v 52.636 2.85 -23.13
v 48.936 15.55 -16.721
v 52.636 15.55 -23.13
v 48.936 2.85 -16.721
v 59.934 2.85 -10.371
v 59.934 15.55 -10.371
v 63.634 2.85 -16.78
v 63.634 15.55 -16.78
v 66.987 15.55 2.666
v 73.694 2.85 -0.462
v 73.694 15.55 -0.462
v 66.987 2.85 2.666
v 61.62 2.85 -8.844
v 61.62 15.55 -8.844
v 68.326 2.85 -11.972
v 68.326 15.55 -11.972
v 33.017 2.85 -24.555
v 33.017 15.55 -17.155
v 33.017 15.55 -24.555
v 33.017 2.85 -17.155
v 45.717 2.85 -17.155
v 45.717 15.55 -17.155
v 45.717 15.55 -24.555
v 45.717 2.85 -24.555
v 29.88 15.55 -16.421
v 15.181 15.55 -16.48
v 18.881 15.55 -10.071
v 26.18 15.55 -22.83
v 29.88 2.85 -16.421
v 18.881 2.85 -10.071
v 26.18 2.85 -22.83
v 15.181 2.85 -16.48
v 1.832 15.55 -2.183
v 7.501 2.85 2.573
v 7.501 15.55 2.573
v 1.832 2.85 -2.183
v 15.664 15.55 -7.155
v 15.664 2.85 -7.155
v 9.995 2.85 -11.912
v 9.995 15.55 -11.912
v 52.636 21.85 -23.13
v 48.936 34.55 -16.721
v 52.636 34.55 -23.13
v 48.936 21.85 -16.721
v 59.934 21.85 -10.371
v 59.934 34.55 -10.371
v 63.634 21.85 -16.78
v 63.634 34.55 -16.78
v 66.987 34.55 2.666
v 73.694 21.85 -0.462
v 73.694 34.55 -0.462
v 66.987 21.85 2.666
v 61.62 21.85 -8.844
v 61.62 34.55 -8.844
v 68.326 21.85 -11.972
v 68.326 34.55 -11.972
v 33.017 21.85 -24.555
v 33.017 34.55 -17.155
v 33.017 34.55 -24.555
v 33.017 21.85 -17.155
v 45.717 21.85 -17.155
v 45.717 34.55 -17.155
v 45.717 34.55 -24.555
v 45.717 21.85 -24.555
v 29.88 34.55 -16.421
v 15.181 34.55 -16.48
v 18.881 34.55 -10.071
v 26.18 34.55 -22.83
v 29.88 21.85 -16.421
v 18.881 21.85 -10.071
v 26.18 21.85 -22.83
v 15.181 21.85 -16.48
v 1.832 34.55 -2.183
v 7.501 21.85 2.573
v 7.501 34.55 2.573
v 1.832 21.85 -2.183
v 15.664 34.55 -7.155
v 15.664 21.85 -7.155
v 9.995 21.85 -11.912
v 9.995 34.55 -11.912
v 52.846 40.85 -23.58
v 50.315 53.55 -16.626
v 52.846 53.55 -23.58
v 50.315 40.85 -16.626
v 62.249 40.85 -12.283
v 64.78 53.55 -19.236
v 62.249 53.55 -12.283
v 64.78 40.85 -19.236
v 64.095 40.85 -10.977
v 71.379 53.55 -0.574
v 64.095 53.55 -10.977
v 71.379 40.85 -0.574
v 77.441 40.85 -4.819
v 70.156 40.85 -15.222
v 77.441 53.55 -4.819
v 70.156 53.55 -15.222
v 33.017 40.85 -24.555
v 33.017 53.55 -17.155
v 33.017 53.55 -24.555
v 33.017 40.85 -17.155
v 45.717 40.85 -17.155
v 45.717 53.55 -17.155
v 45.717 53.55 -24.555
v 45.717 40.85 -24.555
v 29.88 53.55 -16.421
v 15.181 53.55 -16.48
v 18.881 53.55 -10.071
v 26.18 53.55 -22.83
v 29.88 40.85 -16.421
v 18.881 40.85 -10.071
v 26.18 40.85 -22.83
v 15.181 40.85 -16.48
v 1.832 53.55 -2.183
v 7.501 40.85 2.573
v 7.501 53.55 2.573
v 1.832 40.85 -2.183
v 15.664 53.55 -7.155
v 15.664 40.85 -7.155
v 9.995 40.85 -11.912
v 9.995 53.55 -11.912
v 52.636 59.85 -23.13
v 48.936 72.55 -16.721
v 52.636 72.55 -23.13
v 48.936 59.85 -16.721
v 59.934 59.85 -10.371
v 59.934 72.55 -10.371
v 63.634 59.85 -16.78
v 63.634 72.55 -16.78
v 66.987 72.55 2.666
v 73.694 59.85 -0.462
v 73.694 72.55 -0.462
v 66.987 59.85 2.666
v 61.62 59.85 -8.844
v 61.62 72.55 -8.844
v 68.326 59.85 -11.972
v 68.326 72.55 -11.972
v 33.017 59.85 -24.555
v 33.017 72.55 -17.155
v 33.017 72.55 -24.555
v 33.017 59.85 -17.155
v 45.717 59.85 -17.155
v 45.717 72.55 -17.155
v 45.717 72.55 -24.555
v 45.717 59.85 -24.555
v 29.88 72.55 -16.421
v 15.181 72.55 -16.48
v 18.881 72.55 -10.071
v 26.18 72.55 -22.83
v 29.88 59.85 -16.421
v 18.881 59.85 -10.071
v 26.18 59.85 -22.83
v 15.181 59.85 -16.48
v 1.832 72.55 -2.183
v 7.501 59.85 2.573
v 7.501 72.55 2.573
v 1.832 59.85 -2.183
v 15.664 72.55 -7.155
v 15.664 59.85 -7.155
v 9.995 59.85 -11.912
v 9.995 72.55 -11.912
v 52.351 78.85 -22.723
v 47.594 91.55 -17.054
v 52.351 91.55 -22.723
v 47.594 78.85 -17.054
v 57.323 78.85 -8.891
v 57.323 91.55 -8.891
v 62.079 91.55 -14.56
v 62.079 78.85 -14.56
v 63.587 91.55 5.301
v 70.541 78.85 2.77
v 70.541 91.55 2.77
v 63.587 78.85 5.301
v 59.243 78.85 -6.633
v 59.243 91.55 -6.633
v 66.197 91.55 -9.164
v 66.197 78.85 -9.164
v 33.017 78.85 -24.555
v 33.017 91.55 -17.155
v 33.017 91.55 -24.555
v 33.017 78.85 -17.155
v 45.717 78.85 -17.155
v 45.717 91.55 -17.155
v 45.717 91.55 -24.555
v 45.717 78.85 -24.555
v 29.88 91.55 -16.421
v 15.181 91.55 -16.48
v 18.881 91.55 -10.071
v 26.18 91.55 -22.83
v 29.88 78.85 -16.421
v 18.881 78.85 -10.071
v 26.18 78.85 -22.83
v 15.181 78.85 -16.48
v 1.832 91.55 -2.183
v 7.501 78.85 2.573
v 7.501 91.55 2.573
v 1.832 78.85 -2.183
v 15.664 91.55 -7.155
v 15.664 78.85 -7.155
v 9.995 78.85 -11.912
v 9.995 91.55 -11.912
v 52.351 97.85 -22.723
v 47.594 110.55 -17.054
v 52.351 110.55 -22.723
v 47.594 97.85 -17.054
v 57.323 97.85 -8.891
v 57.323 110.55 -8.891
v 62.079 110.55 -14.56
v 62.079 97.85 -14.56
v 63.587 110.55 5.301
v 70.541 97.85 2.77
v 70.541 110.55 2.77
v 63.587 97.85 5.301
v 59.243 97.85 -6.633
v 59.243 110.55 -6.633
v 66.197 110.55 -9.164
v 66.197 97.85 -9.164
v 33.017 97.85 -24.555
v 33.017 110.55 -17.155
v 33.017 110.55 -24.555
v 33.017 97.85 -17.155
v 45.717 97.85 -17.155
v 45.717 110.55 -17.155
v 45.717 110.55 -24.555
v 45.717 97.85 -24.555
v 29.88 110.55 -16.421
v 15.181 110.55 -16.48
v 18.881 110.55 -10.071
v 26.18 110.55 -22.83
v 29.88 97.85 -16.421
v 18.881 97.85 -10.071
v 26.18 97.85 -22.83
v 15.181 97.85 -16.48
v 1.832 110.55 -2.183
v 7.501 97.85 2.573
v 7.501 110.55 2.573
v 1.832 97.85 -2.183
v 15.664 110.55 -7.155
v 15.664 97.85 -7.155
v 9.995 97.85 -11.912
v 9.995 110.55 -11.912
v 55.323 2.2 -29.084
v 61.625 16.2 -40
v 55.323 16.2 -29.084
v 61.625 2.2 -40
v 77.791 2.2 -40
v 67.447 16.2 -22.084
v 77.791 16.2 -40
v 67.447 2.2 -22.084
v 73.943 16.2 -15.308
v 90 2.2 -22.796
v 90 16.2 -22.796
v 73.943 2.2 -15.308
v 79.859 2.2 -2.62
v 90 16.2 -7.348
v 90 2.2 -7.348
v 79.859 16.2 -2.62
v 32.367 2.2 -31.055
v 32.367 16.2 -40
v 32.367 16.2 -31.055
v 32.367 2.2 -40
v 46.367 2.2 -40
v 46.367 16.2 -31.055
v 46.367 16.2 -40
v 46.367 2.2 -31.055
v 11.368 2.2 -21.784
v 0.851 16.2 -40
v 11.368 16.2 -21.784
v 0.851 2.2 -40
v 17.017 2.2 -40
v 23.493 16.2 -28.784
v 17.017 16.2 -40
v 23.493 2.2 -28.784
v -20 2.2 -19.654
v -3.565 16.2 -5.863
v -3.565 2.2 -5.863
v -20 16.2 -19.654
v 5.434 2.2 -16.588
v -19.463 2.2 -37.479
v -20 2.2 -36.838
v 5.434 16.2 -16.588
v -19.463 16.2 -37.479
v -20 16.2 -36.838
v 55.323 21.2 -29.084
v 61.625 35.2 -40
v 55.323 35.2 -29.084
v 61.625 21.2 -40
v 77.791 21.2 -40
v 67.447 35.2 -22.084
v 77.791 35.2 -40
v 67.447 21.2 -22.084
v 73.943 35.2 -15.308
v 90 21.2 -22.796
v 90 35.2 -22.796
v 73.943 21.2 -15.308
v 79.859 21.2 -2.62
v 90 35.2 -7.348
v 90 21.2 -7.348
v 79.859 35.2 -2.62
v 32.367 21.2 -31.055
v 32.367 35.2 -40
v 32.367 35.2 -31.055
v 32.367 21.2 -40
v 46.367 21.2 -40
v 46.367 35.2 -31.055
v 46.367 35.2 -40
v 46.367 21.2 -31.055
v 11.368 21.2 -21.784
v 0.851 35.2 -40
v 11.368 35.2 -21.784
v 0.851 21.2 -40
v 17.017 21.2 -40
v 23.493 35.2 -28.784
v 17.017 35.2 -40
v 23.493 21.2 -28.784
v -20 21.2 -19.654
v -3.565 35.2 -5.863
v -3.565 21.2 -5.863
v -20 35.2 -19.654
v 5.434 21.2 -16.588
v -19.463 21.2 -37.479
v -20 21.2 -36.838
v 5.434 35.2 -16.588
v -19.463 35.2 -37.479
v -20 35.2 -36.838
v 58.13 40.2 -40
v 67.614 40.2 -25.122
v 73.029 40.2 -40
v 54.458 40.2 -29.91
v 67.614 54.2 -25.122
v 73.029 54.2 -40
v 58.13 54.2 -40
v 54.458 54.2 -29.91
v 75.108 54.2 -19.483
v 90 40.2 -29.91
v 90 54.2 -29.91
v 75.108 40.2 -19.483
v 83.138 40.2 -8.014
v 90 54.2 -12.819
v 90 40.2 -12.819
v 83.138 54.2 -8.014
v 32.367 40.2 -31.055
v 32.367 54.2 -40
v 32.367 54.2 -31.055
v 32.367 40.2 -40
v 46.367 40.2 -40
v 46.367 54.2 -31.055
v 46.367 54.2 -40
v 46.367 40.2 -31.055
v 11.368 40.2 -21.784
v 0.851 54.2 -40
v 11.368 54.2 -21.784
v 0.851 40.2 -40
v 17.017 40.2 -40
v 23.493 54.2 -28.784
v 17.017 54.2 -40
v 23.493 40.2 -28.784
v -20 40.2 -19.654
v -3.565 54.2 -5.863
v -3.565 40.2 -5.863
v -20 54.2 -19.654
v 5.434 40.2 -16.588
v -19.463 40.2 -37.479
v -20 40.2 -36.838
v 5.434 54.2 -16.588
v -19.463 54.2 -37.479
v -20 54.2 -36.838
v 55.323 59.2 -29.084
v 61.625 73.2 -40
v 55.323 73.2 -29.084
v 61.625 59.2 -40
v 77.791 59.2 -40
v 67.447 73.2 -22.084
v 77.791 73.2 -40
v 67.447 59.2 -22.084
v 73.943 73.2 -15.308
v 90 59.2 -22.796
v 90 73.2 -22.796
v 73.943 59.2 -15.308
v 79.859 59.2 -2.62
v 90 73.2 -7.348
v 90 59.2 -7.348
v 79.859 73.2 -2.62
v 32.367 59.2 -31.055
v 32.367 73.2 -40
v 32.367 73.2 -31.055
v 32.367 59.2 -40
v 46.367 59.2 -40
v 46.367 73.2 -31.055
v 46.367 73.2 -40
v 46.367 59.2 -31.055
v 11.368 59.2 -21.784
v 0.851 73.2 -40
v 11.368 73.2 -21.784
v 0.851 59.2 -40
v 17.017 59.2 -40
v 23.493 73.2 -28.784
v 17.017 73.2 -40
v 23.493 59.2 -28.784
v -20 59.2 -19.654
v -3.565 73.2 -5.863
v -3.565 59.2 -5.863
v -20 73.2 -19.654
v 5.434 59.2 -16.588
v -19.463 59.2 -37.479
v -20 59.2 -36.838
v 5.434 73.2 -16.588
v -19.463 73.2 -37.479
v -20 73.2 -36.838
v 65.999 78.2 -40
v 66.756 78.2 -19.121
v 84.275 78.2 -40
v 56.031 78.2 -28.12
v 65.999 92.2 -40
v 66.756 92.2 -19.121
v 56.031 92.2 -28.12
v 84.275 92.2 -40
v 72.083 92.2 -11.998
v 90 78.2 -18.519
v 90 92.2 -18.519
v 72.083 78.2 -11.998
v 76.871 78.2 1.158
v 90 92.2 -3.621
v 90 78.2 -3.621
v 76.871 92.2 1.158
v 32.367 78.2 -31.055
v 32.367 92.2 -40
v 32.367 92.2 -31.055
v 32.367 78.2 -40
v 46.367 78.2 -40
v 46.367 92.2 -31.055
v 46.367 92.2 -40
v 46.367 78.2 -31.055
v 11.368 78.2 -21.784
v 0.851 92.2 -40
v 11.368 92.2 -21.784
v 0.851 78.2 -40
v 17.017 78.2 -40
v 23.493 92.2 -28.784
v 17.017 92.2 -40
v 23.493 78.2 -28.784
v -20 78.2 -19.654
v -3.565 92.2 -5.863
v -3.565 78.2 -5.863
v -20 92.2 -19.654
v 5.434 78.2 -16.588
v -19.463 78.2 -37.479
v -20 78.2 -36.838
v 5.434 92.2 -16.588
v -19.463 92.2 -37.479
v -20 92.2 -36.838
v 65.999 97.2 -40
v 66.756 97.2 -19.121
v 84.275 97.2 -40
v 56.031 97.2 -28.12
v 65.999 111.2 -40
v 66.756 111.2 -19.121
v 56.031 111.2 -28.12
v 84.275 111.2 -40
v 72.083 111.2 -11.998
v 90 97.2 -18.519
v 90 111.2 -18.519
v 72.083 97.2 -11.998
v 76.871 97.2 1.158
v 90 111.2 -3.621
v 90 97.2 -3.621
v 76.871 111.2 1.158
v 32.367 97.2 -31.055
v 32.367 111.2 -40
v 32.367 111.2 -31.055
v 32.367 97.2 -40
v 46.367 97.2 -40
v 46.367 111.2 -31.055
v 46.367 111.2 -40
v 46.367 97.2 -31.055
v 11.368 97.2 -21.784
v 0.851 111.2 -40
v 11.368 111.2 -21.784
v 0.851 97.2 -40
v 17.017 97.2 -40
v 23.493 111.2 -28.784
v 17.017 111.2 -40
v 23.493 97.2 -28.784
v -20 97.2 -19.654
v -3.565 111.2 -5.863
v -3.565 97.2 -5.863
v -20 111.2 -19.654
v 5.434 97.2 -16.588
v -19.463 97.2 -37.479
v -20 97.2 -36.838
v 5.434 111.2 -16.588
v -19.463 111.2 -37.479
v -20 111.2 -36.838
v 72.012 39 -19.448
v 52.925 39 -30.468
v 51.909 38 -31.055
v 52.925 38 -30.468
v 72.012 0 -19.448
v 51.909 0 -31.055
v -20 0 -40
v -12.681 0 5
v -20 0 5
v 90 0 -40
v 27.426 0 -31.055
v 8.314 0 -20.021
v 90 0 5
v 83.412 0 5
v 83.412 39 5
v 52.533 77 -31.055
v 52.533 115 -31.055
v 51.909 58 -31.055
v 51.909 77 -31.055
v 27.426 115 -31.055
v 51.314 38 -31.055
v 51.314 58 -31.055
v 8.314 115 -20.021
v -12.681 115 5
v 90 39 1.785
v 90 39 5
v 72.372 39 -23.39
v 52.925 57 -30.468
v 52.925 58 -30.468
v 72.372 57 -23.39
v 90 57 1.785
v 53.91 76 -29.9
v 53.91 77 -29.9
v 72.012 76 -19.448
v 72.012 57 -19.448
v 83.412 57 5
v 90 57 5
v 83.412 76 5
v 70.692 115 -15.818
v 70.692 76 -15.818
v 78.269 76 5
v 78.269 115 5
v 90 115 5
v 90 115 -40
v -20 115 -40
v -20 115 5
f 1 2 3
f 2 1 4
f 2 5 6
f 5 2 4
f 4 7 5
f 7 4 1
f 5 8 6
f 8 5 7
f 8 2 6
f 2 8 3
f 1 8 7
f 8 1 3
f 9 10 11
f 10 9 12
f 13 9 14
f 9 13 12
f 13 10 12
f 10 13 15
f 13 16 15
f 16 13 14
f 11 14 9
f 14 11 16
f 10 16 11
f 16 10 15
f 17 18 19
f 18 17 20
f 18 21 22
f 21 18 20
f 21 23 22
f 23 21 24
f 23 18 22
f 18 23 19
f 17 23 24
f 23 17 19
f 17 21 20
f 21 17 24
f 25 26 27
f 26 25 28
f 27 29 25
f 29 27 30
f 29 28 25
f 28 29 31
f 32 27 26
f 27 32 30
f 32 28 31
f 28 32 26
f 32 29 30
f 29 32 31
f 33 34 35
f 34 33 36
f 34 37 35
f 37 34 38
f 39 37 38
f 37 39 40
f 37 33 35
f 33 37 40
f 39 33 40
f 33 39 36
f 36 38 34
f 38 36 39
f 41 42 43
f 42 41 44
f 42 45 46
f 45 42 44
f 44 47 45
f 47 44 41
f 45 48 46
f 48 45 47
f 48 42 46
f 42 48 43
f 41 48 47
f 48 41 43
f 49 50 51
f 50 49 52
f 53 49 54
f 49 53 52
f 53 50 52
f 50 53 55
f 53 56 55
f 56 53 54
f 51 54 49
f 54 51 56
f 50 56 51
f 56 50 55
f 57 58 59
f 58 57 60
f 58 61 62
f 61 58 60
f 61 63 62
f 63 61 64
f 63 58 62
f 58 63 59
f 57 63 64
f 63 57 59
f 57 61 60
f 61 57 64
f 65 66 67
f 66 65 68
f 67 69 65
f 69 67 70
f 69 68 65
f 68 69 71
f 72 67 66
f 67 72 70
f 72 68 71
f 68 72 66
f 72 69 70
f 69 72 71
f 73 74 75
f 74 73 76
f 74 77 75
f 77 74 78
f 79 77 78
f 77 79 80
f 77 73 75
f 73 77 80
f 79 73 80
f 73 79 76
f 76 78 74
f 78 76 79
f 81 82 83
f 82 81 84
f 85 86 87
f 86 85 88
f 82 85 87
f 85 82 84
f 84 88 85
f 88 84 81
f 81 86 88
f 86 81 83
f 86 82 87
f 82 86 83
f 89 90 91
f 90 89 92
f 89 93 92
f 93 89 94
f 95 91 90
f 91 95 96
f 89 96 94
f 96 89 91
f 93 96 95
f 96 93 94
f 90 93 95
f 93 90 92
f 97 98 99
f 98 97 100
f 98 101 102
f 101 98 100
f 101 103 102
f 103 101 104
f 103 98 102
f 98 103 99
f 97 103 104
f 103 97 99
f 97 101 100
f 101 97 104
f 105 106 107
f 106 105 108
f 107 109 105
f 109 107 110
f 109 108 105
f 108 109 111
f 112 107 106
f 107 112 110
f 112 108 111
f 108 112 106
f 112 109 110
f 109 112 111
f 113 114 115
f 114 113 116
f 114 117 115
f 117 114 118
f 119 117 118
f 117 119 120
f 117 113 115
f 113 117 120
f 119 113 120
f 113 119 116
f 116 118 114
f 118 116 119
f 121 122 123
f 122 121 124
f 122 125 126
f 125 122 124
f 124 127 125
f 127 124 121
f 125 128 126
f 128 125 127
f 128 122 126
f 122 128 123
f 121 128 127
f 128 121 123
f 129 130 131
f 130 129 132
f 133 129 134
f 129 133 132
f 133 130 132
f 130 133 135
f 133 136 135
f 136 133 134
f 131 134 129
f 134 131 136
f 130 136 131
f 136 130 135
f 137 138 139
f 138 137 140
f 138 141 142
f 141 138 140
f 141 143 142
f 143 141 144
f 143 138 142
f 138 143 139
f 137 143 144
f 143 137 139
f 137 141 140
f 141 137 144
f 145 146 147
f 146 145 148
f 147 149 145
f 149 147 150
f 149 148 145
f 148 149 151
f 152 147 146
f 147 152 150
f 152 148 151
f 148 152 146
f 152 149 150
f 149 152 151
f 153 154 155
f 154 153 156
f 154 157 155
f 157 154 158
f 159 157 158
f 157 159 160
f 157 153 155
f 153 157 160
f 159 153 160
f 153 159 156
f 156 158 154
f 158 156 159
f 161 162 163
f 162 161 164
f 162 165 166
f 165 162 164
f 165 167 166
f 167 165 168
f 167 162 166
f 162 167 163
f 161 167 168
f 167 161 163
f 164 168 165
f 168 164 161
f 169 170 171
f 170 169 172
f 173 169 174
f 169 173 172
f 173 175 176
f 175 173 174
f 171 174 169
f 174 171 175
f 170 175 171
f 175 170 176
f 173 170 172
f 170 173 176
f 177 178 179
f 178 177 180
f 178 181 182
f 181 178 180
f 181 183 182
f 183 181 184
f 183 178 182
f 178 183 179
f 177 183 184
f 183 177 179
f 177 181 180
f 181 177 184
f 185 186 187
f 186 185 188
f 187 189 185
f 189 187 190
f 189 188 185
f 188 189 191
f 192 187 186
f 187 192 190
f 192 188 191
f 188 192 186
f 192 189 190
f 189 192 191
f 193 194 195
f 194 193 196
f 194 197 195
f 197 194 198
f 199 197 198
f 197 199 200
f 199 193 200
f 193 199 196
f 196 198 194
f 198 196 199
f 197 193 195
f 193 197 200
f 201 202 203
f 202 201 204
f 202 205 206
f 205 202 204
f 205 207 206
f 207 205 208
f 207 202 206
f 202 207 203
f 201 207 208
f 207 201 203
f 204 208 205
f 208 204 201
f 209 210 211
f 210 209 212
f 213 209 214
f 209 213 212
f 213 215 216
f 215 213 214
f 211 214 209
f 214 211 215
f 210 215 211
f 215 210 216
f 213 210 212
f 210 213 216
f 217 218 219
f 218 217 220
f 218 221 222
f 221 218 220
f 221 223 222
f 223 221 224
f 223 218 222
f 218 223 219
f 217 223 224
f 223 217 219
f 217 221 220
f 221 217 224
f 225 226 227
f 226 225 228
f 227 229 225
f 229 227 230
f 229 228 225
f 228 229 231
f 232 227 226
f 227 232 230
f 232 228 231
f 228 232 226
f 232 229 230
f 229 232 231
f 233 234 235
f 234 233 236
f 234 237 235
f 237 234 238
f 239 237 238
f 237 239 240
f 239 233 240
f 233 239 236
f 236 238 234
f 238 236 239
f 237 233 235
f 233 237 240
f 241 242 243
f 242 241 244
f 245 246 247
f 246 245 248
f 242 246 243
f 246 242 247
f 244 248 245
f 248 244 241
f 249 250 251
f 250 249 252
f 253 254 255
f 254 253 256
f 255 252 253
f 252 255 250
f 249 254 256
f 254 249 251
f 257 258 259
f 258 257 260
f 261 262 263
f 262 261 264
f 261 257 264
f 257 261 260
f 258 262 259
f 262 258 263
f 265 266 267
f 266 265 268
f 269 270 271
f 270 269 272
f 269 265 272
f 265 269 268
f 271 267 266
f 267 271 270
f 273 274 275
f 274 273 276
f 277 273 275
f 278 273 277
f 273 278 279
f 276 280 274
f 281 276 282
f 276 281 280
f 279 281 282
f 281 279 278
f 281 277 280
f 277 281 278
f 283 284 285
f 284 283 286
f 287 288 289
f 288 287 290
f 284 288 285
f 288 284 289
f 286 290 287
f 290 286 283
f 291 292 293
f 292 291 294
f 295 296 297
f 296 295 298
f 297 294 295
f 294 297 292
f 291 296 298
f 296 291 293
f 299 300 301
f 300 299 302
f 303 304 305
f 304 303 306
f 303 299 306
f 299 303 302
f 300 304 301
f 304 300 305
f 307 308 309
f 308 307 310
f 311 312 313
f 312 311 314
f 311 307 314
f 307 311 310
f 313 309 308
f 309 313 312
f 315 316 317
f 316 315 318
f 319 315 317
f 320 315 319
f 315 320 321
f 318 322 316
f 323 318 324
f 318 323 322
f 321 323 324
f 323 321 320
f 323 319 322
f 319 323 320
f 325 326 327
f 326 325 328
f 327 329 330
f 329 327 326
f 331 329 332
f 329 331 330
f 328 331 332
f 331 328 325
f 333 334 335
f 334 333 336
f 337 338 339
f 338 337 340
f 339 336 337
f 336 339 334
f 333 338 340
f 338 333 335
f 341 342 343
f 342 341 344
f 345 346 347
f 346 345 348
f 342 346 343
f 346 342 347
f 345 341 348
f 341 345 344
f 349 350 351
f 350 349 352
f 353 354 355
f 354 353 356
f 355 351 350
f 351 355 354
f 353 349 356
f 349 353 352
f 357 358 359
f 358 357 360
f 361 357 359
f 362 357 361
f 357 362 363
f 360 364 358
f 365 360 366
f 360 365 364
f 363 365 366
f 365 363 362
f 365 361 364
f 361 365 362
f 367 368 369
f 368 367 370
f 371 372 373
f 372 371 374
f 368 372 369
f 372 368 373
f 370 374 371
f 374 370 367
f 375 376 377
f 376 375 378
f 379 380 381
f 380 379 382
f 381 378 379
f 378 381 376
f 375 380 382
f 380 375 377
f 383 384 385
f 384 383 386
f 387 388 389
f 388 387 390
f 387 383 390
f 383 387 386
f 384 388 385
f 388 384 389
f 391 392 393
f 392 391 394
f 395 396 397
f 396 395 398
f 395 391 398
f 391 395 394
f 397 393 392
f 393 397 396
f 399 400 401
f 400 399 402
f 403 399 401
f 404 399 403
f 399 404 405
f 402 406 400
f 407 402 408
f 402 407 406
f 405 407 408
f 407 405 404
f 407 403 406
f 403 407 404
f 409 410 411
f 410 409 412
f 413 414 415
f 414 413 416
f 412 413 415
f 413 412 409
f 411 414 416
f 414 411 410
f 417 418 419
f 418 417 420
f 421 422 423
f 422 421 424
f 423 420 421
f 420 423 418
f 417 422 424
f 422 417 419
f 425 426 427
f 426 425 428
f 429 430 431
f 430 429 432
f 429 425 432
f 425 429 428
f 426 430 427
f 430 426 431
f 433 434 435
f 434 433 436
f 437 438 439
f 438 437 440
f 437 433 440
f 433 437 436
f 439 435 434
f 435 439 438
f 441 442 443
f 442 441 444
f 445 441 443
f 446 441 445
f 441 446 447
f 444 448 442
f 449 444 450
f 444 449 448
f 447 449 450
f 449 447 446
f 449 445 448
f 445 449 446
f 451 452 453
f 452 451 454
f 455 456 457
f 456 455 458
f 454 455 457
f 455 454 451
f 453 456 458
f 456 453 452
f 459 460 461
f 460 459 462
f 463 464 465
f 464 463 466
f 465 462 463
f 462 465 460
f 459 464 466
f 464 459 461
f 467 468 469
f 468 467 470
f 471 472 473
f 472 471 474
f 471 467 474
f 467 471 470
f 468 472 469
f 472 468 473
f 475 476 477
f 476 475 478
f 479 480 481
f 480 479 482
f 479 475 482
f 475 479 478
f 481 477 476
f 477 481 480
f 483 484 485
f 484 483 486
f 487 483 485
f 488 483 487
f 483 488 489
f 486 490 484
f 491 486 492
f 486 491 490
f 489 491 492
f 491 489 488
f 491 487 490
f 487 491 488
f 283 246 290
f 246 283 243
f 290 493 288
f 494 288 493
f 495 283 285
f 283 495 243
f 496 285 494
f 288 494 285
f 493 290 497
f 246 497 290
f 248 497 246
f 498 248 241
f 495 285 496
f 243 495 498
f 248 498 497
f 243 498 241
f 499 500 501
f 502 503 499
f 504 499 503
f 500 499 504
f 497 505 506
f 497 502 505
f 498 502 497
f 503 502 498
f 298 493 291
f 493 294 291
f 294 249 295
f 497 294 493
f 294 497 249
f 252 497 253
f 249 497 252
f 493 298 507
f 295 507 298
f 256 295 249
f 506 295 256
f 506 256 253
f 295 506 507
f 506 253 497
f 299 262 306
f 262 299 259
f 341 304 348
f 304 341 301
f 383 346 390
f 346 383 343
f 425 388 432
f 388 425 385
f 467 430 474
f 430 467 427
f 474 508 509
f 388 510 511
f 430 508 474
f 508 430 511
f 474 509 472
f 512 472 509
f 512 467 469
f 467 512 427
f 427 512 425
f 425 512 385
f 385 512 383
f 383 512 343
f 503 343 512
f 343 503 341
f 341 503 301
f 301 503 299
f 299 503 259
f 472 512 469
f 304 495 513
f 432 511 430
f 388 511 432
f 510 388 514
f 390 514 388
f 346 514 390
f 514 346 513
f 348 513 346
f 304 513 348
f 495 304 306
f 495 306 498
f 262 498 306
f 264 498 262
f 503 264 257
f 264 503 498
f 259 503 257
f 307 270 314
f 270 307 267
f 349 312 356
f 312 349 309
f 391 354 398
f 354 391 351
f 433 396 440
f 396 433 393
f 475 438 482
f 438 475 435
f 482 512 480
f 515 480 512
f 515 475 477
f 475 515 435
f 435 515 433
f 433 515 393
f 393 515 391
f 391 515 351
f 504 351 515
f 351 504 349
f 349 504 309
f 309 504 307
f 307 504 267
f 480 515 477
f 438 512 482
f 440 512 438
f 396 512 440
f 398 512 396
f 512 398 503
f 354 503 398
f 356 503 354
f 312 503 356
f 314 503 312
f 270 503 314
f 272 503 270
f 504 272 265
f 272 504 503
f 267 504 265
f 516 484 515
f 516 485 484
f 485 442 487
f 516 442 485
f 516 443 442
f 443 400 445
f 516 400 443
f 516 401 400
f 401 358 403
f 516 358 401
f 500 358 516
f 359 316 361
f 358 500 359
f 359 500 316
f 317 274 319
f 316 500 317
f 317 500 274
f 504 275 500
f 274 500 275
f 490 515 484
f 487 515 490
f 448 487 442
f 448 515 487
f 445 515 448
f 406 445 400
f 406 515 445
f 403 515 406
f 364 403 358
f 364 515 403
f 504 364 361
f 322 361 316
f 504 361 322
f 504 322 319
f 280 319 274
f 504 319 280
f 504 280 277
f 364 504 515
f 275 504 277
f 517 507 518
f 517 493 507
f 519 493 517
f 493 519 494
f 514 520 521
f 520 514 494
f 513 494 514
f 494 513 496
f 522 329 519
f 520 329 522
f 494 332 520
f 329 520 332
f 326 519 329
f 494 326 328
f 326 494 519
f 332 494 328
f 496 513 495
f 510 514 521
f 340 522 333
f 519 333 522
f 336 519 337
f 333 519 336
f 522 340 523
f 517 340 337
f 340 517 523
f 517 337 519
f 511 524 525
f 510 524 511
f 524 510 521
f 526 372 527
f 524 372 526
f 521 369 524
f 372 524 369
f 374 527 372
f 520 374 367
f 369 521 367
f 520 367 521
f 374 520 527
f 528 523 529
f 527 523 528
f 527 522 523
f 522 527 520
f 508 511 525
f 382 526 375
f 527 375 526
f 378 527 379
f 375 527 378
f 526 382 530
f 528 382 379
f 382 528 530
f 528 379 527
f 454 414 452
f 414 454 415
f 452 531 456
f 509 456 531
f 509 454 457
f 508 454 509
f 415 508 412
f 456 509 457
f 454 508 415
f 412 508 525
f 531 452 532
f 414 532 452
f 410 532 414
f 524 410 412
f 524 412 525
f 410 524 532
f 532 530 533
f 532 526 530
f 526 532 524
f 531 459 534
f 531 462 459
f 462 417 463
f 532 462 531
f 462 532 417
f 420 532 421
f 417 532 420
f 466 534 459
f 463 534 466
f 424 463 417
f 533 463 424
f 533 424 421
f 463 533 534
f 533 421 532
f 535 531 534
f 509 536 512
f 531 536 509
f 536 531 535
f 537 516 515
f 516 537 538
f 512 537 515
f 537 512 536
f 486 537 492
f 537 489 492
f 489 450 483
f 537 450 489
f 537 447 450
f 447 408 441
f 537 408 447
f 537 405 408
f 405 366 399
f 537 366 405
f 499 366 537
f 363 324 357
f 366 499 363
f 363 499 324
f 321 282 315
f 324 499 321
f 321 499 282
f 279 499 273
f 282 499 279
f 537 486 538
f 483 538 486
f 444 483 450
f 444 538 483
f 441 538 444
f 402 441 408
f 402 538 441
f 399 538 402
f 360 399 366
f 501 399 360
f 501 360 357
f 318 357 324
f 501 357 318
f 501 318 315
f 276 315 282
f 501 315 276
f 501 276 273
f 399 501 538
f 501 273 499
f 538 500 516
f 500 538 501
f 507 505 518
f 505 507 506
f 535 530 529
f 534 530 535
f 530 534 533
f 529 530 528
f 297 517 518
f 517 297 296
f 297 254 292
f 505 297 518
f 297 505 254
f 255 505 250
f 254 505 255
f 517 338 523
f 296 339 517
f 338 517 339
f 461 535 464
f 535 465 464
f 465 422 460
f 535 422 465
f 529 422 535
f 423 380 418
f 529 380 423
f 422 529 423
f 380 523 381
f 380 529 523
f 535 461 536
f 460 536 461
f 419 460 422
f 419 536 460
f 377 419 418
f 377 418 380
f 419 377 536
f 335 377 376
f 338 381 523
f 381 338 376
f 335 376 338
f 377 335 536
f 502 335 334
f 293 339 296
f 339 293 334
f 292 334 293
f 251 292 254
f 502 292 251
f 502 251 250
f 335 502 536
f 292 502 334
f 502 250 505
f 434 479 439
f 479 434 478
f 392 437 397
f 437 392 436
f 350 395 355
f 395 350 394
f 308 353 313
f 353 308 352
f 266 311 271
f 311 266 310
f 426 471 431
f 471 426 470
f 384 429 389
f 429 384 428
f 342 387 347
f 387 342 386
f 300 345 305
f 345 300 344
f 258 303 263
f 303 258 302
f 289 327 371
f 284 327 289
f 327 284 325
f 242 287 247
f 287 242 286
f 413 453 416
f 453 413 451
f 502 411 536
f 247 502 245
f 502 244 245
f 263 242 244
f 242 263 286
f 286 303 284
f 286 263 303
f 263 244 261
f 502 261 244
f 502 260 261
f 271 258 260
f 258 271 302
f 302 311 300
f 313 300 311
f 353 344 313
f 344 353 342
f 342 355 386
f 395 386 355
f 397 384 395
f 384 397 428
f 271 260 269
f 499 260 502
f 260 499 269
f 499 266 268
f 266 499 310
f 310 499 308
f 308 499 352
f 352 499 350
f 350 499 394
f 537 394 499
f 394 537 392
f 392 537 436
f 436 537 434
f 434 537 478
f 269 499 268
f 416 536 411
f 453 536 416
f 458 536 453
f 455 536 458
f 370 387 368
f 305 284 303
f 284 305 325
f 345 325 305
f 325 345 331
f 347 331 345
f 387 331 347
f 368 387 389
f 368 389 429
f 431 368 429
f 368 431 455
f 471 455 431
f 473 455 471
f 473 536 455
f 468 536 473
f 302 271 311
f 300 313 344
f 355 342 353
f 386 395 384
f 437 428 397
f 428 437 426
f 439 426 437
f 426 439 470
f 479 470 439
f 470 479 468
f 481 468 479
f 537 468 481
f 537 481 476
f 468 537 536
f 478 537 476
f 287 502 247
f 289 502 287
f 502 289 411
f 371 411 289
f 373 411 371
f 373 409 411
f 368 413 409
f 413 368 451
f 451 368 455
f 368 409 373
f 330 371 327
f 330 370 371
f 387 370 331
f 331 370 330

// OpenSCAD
KW = 18.4;
SINGLE = 19;

module key_base(type, is_simplified=true) {
    if (type == 0) {
        KEYCAP_OFFSET = -1;
        if (is_simplified) {
            KEY_WIDE = 18.4;
            KEY_NARROW = 12.7;
            KEY_HEIGHT = 7.4;
            WN_OFFSET = (KEY_WIDE - KEY_NARROW) / 2;
            translate([WN_OFFSET, WN_OFFSET, 0]) {
                cube([KEY_NARROW, KEY_NARROW, KEY_HEIGHT]);
            }
        }
        else {
            translate([KW / 2, KW / 2, KEYCAP_OFFSET]) {
                import("./keycaps/mx_dsa.stl");
            }
        }
    } else if (type == 1) {
        CASE_EXTRUSION_DEPTH = 200;
        CASE_OFFSET = 6.5;
        translate([-KW, 0, -CASE_EXTRUSION_DEPTH - CASE_OFFSET]) {
            cube([4 * KW, SINGLE + 1, CASE_EXTRUSION_DEPTH]);
        }
    } else if (type == 2){
        HOLE_WIDTH = 14;
        HOLE_OFFSET = (KW - HOLE_WIDTH) / 2;
        HOLE_HEIGHT = 40;
        translate([HOLE_OFFSET, HOLE_OFFSET, -HOLE_HEIGHT + 1]) {
            cube([HOLE_WIDTH, HOLE_WIDTH, HOLE_HEIGHT]);
        }
    }
}


module key(angle, type) {
    rotate(angle, [0, 1, 0]) key_base(type);
}


module column(type, angles, offsets_x, offsets_z) {
    key(angles[0], type);
    translate([SINGLE * cos(angles[0]) + offsets_x[0], 0, -SINGLE * sin(angles[0]) + offsets_z[0]]) {
        key(angles[1], type);
        translate([SINGLE * cos(angles[1]) + offsets_x[1], 0, -SINGLE * sin(angles[1]) + offsets_z[1]]) {
            key(angles[2], type);
            translate([SINGLE * cos(angles[2]) + offsets_x[2], 0, -SINGLE * sin(angles[2]) + offsets_z[2]]) {
                key(angles[3], type);
                translate([SINGLE * cos(angles[3]) + offsets_x[3], 0, -SINGLE * sin(angles[3]) + offsets_z[3]]) {
                    key(angles[4], type);
                }
            }
        }
    }
}


angles = [
    [50, 30, 0, -30, -65],
    [50, 30, 0, -30, -65],
    [50, 30, 0, -20, -55],
    [50, 30, 0, -30, -65],
    [50, 30, 0, -40, -70],
    [50, 30, 0, -40, -70]
];
offsets_x = [0.5, 1, 1, 0.5];
offsets_z = [-0.5, 0, 0, 0.5];

//translate([30, 0, -20]) cube([10, 10, 30]);
translate([0, 0, 0]) {
    difference() {
        intersection() {
            translate([-20, 0, -40]) cube([110, 120, 45]);
            for (i = [0:5]) {
                translate([0, SINGLE * i, 0]) column(1, angles[i], offsets_x, offsets_z);
            }
        }
        for (i = [0:5]) {
            translate([0, SINGLE * i, 0]) column(2, angles[i], offsets_x, offsets_z);
        }
    }

    for (i = [0:5]) {
        translate([0, SINGLE * i, 0]) column(0, angles[i], offsets_x, offsets_z);
    }
}
